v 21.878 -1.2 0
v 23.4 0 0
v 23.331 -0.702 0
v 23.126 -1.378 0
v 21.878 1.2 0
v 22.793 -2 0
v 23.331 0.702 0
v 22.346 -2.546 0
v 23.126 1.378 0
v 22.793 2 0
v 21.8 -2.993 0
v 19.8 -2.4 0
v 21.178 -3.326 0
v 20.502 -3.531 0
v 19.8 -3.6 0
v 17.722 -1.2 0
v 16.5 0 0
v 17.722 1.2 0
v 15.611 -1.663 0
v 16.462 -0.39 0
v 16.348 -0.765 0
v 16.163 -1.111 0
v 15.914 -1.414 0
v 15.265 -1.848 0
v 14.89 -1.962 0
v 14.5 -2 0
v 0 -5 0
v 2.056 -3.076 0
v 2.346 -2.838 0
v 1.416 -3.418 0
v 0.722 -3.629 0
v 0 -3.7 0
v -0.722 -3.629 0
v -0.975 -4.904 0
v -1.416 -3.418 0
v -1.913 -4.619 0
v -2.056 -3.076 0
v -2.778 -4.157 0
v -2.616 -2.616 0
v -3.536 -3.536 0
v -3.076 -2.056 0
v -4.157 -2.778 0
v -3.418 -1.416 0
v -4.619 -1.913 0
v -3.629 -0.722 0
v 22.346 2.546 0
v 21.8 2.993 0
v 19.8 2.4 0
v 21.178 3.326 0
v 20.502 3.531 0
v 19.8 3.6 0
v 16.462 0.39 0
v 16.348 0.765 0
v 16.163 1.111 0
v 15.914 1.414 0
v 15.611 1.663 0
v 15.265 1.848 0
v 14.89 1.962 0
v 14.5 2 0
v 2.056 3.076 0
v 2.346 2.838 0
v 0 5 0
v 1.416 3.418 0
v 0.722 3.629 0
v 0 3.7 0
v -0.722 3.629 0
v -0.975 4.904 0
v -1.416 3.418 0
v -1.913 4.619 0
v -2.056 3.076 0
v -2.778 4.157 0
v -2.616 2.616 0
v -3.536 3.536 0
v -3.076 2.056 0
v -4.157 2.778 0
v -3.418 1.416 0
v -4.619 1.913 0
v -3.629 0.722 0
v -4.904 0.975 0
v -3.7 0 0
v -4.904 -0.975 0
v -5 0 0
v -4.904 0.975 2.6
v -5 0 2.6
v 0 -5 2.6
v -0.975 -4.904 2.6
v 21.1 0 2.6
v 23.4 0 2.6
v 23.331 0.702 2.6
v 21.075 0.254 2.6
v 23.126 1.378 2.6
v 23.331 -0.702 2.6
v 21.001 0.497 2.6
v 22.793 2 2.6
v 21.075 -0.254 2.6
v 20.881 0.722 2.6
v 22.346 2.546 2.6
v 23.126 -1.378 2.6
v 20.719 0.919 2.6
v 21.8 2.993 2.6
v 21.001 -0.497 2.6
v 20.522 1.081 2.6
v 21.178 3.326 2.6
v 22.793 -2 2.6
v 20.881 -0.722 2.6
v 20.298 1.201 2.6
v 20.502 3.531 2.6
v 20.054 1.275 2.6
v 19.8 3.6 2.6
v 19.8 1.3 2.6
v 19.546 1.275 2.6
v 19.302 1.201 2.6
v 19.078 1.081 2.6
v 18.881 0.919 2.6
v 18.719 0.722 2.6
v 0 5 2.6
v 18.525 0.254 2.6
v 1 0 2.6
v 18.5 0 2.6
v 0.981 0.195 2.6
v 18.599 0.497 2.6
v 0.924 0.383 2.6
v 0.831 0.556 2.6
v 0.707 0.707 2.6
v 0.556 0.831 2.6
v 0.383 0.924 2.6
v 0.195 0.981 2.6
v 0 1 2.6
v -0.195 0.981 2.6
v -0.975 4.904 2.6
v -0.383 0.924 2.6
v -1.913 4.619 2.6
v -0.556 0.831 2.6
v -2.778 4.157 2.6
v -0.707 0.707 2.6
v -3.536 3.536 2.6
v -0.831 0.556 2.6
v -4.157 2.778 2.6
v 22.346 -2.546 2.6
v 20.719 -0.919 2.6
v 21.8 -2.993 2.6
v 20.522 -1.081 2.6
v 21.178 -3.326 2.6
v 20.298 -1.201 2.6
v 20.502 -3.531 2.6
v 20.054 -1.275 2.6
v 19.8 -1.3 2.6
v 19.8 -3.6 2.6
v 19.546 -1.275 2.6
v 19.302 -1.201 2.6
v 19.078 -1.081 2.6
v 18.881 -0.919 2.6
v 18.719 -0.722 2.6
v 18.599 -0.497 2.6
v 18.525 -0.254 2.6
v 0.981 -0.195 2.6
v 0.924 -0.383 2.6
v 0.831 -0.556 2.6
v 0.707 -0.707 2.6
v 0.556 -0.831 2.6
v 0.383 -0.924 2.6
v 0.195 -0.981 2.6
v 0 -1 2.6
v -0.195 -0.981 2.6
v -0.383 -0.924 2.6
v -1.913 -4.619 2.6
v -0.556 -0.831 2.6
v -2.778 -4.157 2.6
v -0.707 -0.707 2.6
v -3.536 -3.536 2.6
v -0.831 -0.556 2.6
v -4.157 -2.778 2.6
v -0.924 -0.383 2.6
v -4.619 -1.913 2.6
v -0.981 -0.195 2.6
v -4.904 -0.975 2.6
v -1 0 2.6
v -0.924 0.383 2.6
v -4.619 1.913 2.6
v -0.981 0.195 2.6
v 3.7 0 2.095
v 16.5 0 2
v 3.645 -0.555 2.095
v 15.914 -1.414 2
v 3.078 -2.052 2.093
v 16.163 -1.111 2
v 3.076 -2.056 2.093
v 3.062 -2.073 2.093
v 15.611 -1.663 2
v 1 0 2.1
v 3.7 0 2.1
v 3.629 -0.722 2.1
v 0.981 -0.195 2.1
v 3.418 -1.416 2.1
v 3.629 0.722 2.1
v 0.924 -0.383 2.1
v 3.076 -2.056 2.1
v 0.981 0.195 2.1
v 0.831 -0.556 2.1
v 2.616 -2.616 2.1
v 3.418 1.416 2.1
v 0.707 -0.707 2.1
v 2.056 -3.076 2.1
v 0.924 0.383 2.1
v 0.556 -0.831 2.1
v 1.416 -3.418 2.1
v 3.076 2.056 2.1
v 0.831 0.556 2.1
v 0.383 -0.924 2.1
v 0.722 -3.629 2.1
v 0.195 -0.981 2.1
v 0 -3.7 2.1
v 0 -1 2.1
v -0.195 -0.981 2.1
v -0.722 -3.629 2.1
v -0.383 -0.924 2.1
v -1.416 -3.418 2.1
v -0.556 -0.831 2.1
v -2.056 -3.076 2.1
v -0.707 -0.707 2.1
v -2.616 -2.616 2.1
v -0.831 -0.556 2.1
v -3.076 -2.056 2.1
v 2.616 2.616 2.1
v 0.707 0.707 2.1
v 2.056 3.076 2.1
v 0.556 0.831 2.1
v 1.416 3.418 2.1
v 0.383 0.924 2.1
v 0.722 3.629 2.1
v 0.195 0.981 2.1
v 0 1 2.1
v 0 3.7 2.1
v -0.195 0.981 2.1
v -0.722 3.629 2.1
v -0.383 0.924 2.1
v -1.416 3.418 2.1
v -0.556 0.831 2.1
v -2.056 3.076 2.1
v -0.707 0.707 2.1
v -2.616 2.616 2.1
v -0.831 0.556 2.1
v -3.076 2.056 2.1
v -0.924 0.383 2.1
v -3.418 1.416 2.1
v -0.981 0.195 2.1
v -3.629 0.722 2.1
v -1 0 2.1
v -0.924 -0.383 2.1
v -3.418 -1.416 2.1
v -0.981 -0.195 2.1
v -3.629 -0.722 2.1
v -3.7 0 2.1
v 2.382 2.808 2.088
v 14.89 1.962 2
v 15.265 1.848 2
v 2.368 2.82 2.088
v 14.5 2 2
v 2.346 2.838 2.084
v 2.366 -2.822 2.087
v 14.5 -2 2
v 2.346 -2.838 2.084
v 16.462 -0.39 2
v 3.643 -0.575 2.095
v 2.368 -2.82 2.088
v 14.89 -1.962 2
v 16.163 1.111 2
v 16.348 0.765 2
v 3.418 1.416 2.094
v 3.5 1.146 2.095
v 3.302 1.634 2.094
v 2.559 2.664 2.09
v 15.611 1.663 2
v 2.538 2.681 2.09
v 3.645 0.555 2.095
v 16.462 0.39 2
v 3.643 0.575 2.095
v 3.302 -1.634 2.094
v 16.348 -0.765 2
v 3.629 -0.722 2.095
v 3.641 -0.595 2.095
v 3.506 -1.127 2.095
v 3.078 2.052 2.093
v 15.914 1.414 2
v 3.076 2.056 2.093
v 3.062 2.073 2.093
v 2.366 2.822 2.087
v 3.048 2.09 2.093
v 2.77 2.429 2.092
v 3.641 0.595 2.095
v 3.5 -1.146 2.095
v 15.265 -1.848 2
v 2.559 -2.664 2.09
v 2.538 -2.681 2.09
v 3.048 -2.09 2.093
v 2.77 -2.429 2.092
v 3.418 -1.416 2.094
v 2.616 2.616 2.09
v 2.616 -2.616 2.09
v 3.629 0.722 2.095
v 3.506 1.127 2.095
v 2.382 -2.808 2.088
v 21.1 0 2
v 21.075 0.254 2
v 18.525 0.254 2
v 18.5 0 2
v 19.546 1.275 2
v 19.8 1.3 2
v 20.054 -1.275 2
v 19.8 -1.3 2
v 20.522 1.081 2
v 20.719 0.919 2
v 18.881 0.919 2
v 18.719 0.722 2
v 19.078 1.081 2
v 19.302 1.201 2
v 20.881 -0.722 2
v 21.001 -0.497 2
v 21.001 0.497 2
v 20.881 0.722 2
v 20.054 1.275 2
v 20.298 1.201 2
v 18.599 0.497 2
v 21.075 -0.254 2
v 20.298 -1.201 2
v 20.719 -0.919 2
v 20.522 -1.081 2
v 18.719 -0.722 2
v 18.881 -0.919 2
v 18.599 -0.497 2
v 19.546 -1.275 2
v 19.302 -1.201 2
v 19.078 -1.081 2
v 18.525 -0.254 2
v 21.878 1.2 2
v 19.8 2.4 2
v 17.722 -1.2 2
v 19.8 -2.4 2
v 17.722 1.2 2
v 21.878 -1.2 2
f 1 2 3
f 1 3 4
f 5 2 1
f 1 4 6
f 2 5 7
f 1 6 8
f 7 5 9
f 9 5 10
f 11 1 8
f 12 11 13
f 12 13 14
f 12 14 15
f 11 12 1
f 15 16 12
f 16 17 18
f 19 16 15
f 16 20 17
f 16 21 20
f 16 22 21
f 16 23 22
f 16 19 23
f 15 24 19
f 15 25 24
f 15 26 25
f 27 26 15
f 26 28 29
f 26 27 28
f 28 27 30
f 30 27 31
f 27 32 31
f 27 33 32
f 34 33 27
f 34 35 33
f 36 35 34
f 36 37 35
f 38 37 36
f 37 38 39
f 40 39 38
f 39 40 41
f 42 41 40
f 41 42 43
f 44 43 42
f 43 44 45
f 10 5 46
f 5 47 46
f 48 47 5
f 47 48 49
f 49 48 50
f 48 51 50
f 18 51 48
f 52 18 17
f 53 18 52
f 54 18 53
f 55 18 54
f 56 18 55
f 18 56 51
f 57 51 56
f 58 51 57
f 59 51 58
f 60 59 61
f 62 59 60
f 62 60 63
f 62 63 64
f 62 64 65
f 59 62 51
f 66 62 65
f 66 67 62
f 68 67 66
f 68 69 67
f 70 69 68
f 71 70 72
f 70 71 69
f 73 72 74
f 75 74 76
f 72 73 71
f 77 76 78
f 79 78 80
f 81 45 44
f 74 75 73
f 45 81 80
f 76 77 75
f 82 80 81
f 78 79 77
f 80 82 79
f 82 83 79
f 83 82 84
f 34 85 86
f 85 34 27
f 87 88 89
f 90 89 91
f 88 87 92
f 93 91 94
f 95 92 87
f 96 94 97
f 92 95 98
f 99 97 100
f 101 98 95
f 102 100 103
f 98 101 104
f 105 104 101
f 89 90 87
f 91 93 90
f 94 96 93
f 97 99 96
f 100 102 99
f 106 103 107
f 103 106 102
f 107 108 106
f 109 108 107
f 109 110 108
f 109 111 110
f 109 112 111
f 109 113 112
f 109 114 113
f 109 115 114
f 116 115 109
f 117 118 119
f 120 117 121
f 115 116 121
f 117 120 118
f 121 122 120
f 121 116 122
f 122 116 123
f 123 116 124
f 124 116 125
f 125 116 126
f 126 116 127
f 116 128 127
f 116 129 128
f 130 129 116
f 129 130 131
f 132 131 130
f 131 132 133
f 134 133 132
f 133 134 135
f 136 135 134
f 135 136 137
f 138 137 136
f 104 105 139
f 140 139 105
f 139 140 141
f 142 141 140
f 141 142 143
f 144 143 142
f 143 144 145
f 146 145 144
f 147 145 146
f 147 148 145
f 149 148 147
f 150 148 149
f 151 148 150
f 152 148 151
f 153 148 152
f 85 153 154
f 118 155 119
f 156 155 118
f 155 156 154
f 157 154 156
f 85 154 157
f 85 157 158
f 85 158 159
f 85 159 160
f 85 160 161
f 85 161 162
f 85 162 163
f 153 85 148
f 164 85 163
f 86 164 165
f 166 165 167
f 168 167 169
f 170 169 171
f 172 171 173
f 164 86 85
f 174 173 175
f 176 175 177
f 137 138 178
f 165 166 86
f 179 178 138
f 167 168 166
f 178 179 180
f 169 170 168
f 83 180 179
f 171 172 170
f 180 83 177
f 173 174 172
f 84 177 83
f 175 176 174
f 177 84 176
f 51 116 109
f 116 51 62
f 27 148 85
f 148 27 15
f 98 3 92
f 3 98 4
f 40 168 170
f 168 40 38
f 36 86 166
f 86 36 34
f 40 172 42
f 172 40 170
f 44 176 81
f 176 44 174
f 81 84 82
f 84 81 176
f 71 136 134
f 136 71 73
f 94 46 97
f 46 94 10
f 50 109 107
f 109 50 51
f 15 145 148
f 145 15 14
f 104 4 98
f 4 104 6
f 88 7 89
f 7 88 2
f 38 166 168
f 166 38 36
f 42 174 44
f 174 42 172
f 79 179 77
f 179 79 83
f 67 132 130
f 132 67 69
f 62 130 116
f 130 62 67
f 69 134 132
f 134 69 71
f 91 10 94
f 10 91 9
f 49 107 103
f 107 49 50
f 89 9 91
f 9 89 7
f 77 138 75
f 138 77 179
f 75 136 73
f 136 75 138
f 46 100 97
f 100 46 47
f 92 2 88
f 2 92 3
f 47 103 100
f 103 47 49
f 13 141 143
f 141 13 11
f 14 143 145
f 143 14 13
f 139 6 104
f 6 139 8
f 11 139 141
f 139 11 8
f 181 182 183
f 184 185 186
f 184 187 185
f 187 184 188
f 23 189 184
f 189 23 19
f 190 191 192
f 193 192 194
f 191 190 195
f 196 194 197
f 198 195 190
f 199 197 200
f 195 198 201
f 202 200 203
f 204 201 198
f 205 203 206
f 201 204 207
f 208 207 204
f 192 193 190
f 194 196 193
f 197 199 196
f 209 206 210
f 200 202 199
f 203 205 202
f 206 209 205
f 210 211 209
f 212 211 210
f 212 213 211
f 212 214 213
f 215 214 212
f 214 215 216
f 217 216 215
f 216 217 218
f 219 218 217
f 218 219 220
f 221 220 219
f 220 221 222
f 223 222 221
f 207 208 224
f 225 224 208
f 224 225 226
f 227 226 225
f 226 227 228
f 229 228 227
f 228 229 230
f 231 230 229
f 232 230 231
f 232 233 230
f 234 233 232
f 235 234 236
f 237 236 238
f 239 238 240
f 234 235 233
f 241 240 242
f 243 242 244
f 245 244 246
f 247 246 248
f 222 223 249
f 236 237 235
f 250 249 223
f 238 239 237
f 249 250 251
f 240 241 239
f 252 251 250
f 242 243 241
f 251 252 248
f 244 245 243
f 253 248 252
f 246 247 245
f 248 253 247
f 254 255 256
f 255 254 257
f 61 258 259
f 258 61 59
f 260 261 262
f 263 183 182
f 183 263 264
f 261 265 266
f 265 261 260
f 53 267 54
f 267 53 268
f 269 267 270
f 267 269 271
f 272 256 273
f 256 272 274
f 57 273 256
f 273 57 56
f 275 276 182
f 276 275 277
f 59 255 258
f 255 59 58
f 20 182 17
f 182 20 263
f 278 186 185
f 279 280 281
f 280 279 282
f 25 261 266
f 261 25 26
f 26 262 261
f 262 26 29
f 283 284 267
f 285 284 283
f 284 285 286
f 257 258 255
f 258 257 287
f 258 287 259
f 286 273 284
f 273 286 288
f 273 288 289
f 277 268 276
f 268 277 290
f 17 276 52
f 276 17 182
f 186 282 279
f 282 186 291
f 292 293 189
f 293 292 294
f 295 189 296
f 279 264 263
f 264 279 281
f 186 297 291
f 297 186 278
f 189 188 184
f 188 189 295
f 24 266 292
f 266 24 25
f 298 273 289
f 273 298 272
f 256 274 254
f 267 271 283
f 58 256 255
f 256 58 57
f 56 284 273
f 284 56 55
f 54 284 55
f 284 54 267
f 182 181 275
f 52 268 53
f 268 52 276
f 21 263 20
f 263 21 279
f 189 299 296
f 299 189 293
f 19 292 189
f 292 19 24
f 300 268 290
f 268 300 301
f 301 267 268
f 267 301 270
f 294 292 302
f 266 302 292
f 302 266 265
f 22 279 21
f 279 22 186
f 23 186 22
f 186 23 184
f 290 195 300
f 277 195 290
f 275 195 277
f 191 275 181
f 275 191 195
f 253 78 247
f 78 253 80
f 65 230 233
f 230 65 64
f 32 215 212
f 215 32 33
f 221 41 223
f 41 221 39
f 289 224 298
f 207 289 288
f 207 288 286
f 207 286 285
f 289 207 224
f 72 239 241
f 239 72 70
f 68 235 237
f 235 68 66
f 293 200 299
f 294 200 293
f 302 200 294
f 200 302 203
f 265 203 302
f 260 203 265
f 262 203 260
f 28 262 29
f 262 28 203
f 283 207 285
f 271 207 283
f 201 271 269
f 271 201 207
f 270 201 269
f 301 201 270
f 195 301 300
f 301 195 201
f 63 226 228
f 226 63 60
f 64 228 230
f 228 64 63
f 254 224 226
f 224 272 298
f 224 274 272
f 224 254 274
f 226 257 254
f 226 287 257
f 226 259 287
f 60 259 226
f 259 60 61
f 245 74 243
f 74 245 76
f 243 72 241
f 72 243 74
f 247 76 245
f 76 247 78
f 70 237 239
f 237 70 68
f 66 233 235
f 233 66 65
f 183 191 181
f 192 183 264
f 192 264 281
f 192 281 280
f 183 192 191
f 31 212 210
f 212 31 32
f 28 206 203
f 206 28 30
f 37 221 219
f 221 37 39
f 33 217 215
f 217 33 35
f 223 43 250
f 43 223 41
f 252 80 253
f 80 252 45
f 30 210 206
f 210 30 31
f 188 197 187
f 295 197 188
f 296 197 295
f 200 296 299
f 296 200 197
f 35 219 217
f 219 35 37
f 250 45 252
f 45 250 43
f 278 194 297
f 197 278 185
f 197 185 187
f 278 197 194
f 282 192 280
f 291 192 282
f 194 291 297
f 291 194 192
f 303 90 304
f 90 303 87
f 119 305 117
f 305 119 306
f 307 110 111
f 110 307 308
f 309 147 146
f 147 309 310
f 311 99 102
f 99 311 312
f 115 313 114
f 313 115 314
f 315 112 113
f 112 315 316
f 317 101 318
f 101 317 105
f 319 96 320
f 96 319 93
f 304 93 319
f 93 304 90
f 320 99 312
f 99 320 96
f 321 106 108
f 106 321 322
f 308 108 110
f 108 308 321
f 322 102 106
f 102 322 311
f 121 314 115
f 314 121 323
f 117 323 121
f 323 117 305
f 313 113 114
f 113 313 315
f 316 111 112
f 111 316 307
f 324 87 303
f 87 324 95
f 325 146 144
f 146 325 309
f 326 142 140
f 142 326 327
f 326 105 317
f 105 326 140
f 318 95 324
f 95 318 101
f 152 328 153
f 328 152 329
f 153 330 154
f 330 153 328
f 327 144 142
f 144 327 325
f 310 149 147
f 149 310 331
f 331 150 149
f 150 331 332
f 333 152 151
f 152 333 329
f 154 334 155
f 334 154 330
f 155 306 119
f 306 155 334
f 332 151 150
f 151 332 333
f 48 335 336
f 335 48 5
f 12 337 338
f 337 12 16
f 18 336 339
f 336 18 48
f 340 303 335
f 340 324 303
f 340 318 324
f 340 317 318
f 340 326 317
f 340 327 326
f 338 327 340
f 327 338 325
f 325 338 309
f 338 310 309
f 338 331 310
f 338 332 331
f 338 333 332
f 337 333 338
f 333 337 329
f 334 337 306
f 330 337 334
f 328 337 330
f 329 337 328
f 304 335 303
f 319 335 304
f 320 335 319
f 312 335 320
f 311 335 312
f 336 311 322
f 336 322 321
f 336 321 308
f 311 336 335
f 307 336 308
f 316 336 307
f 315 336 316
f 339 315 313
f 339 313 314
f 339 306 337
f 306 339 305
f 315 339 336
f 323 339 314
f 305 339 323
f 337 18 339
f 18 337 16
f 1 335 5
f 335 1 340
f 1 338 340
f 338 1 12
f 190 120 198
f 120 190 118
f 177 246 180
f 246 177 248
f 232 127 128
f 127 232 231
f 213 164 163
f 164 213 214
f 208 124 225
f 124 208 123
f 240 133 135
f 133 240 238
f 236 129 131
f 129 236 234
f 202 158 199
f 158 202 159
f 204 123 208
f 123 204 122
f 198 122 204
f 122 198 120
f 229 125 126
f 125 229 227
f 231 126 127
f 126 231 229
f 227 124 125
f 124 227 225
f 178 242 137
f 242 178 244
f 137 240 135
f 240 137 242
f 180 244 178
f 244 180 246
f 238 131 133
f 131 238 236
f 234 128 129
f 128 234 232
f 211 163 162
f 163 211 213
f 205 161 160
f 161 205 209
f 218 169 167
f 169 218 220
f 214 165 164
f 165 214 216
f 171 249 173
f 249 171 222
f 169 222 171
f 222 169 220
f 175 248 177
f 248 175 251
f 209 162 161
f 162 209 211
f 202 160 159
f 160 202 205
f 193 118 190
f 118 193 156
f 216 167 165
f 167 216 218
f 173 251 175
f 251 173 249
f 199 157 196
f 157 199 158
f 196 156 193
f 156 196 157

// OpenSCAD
h = 2.6;
difference() {
    d = 14.6+4.8+0.4;
    hull() {
        cylinder($fn=32, h=h, d=10);
        translate([d,0,0]) cylinder($fn=32, h=h, d=7.2);
    }
    
    hull() {
        cylinder($fn=32, h=h-0.5, d=6);
        translate([14.5,0,0]) cylinder($fn=32, h=h-0.6, d=4);
    }
    cylinder($fn=32, h=h-0.5, d=7.4);
    translate([d,0,0]) cylinder($fn=32, h=h, d=2.6);
    translate([d,0,0]) rotate([0,0,30]) cylinder($fn=6, h=2, d=4.8);
    cylinder($fn=32, h=h, d=2);
}
